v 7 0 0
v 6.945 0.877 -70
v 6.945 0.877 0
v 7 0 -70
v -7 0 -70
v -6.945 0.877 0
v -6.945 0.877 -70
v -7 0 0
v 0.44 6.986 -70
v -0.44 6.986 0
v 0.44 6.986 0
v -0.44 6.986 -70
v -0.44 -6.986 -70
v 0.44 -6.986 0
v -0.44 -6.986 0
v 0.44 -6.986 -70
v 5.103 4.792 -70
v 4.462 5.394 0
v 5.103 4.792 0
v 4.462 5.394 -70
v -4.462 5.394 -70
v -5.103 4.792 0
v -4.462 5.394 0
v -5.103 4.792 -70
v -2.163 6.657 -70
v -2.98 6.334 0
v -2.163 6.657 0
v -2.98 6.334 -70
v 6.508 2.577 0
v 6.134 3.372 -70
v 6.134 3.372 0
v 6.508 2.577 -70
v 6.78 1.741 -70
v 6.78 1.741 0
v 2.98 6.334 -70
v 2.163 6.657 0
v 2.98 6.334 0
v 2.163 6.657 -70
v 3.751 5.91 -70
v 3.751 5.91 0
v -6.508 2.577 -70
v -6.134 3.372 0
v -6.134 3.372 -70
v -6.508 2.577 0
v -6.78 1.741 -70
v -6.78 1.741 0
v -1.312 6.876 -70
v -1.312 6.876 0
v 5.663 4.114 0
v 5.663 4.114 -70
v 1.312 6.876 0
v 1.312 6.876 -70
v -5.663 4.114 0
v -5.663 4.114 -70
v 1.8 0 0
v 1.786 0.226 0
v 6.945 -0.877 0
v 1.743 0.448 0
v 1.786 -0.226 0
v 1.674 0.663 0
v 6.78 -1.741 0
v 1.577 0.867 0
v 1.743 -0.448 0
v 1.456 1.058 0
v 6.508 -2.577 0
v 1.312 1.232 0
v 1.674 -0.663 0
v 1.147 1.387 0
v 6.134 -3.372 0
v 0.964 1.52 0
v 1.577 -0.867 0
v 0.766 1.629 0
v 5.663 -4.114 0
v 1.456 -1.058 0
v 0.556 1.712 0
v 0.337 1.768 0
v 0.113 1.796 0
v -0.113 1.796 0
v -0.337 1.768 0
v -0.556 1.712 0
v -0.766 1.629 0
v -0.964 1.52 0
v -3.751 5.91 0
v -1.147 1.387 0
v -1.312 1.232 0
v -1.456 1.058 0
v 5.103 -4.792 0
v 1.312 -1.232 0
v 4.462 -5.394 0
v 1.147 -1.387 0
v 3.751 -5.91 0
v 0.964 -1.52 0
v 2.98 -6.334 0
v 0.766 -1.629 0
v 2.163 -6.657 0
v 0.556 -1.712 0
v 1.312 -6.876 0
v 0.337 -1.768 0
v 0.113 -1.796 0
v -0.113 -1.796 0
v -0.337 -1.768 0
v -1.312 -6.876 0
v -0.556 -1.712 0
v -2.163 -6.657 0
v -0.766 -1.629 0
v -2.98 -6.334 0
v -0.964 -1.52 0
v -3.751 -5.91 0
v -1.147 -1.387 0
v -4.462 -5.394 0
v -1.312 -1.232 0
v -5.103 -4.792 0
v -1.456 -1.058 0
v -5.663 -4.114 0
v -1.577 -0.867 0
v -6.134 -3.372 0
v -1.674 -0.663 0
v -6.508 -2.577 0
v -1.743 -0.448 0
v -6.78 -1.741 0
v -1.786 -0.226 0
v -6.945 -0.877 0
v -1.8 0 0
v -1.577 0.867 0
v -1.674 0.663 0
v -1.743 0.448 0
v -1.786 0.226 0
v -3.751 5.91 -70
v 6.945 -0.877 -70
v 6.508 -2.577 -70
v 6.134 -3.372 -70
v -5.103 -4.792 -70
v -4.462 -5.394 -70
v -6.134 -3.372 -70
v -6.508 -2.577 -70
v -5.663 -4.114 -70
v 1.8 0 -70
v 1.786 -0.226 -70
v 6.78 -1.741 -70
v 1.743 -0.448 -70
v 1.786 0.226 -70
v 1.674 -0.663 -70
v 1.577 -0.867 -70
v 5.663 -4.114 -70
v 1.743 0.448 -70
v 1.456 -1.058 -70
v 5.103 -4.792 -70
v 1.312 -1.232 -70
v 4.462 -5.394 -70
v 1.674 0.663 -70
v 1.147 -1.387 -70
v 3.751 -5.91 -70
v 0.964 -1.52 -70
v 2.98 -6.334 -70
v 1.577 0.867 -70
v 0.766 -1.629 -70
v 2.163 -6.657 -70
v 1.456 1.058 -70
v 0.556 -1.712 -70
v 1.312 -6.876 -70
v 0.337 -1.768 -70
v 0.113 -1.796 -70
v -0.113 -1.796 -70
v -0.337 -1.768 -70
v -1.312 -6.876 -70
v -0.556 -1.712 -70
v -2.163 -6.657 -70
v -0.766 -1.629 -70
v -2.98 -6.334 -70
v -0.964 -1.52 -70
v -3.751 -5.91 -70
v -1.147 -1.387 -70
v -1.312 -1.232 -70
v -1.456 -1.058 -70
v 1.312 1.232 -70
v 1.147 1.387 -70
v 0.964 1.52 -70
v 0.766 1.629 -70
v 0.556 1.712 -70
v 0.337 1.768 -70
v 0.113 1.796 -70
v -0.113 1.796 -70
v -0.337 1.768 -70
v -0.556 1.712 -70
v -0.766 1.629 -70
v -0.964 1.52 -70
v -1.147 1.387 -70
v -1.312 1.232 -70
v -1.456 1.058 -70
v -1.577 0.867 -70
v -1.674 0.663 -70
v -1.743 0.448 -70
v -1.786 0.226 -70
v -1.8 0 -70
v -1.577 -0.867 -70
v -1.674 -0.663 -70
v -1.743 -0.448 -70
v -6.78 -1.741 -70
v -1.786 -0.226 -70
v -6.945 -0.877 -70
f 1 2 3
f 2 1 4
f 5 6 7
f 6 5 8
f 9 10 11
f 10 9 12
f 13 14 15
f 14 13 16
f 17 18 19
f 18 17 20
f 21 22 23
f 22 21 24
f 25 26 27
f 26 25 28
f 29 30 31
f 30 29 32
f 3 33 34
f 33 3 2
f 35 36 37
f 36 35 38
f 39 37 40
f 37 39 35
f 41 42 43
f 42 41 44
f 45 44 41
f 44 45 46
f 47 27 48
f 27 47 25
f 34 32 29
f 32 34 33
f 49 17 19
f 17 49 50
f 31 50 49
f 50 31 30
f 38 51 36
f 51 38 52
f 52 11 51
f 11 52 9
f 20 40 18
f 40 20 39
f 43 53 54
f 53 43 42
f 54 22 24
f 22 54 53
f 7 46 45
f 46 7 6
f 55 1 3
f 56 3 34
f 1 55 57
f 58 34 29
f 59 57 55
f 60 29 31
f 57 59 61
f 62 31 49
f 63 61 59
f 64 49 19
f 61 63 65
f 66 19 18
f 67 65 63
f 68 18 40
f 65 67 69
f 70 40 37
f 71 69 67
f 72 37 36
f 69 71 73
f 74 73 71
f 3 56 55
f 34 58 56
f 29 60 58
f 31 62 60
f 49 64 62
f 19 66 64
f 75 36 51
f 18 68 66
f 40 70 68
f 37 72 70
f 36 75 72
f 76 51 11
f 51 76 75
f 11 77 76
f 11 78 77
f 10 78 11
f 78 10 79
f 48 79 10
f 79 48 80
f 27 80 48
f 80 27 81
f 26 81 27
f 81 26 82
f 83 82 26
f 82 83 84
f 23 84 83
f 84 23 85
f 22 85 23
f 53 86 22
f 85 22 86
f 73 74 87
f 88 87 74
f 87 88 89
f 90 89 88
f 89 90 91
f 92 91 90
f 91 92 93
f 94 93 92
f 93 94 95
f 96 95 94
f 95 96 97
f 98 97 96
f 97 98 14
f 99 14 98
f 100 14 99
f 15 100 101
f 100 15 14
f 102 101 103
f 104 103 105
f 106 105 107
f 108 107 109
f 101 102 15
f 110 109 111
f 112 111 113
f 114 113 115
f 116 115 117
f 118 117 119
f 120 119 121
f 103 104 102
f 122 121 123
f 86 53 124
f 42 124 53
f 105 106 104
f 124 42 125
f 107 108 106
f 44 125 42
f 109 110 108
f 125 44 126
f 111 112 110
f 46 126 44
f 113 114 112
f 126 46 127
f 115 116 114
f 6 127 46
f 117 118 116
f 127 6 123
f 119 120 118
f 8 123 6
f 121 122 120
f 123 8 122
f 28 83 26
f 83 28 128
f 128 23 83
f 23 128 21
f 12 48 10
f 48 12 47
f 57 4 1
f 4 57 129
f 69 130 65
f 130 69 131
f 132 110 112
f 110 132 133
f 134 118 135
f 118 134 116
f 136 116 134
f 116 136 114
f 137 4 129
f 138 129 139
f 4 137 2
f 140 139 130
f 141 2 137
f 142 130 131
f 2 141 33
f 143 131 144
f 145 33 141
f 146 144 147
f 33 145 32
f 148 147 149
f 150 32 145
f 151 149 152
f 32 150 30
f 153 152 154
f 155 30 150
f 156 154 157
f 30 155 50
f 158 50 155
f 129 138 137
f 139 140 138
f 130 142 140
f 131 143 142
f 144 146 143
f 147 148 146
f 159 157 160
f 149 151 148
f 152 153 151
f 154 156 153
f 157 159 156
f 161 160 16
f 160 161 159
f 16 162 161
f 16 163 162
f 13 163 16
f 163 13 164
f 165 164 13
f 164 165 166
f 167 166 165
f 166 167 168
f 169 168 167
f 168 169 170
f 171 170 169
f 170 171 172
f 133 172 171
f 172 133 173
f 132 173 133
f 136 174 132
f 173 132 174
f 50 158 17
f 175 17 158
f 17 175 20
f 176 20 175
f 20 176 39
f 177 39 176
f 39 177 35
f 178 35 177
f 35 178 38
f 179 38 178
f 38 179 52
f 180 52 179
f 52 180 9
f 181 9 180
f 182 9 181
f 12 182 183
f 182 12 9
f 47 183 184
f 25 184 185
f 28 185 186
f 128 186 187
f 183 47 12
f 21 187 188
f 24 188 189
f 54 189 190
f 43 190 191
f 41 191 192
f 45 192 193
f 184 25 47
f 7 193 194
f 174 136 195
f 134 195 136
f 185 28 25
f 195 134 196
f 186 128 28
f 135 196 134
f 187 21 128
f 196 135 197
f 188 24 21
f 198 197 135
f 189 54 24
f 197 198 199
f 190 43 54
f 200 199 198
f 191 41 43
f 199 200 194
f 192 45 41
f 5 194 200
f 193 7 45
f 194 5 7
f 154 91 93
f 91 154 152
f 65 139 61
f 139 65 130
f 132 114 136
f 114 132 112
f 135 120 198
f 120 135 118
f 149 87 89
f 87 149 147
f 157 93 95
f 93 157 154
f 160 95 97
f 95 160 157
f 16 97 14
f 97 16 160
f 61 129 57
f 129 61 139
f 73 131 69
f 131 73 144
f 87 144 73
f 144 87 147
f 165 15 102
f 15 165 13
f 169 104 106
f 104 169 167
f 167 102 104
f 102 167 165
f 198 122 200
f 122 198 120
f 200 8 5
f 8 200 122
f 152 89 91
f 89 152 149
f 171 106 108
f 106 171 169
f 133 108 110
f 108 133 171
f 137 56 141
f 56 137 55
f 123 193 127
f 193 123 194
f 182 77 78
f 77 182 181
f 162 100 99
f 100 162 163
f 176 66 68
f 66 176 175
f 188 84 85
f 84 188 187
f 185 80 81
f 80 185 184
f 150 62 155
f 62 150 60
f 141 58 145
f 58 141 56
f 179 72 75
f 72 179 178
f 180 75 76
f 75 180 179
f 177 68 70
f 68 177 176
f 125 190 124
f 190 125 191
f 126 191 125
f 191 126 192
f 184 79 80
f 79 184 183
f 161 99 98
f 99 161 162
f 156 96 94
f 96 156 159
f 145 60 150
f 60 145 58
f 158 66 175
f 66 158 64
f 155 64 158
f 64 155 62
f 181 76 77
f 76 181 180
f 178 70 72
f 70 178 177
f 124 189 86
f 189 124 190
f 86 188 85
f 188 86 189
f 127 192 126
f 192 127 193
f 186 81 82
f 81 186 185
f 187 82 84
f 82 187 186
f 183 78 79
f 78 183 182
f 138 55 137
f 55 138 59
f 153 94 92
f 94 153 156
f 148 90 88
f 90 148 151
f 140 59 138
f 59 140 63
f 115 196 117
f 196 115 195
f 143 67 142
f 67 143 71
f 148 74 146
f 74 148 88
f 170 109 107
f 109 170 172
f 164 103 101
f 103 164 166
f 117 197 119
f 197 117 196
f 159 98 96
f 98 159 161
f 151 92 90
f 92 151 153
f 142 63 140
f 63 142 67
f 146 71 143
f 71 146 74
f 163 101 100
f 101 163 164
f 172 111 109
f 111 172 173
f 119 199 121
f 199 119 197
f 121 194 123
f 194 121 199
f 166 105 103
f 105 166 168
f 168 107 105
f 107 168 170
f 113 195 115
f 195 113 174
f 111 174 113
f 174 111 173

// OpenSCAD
$fn = 50;


difference() {
	union() {
		translate(v = [0, 0, -70.0000000000]) {
			cylinder(h = 70, r = 7.0000000000);
		}
		cylinder(h = 0, r = 10.0000000000);
	}
	union() {
		#translate(v = [0, 0, -70]) {
			cylinder(h = 70, r = 1.8000000000);
		}
	}
}
